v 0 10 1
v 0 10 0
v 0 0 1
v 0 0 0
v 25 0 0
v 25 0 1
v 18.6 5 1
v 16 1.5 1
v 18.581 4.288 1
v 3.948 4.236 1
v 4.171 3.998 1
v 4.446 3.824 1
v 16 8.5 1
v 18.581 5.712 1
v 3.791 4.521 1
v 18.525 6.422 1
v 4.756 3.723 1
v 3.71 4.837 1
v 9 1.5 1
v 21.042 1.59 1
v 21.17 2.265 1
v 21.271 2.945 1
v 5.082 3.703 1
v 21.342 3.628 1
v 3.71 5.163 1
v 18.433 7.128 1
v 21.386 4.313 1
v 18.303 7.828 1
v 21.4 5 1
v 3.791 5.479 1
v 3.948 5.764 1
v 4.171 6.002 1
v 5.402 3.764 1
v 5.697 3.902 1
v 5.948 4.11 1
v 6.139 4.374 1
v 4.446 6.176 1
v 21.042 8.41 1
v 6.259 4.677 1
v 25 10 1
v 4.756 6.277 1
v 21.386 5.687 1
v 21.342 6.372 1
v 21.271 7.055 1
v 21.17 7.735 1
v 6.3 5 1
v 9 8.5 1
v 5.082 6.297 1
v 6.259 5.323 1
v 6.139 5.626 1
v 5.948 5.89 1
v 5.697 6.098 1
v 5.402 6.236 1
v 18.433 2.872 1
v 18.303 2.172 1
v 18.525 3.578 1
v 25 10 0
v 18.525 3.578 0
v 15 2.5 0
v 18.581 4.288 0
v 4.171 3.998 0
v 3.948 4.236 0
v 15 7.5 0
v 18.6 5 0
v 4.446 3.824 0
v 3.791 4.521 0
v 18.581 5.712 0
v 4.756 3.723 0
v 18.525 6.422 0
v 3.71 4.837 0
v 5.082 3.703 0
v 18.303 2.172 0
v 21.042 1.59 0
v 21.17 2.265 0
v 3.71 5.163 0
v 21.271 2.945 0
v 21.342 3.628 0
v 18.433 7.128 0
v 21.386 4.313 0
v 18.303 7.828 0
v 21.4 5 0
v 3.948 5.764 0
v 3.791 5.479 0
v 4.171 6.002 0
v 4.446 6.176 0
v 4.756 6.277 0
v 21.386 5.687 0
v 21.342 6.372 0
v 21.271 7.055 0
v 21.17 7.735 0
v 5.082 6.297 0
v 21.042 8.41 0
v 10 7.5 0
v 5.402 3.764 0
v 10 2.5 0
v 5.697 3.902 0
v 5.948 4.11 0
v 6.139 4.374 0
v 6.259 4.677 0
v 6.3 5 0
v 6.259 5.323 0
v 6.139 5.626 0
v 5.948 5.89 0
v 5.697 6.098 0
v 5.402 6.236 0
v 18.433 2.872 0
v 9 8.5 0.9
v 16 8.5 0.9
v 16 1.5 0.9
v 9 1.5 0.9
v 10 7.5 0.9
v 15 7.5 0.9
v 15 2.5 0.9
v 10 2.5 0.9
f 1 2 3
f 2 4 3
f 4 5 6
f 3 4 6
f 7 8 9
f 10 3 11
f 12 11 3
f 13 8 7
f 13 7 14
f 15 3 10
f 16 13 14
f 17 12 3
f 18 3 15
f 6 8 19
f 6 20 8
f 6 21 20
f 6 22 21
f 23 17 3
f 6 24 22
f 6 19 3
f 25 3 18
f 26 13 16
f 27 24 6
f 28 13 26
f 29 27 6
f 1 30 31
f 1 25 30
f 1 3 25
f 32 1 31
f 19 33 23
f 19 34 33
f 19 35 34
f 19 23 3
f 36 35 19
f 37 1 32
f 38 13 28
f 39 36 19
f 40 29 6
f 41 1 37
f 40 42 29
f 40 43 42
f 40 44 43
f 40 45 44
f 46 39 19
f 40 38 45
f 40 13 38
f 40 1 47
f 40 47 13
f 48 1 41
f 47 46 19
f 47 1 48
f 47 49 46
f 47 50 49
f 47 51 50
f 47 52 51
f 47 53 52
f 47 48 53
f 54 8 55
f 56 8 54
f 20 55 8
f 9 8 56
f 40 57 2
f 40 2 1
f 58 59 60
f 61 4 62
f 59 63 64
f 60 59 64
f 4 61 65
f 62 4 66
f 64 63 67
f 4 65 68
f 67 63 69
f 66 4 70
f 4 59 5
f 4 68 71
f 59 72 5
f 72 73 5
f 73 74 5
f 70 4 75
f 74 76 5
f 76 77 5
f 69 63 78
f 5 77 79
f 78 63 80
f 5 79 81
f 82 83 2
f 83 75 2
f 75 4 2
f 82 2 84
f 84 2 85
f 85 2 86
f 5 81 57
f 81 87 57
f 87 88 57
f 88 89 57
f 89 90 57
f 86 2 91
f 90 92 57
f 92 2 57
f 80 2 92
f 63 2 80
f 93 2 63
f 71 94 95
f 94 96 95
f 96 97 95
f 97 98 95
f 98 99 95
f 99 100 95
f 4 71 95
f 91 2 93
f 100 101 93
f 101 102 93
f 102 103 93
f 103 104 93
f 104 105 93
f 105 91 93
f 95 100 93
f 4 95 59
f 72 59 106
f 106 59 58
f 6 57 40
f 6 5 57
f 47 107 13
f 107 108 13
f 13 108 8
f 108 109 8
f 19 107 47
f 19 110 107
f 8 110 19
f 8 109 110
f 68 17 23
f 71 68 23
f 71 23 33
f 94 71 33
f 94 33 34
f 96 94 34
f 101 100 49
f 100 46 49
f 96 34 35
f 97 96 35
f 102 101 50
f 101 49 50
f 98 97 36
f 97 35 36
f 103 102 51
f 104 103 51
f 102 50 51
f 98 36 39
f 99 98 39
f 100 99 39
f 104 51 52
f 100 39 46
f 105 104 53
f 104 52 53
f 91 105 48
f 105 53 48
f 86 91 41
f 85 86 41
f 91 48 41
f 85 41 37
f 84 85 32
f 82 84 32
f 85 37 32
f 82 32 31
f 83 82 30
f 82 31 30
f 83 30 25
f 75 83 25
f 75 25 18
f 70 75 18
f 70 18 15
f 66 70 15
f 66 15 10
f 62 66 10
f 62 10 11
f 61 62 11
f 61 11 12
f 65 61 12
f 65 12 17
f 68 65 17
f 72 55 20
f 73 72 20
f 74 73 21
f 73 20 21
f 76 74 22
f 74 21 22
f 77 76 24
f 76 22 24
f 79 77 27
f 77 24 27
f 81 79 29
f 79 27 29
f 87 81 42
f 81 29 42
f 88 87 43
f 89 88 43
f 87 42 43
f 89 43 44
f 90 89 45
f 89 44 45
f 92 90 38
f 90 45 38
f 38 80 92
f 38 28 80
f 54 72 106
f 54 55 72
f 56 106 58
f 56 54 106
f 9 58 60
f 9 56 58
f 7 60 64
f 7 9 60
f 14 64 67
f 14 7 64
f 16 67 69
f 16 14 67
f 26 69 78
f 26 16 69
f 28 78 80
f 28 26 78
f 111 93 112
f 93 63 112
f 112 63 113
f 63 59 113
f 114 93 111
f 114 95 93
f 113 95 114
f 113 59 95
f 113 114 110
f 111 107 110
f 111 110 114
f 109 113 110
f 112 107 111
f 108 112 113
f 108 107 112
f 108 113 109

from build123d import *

# Parameters (mm, degrees)
CYLINDER002_W               = 13.6
CYLINDER002_H               = 11
CYLINDER002_ANGLE           = 24
CYLINDER002_PLACEMENT_ANGLE = -12
CYLINDER001_W               = 16.4
CYLINDER001_H               = 10
CYLINDER001_ANGLE           = 24
CYLINDER001_PLACEMENT_ANGLE = -12
CYLINDER_R                  = 1.3
CYLINDER_DEPTH              = 10
BOX002_W                    = 7
BOX002_H                    = 7
BOX002_DEPTH                = 0.5
BOX001_W                    = 5
BOX001_H                    = 5
BOX001_DEPTH                = 2
BOX_W                       = 25
BOX_H                       = 10
BOX_DEPTH                   = 1


with BuildPart() as zylinder002:
    # Cylinder002 → Cylinder002 (revolve)
    with BuildSketch(Plane.XZ):
        with Locations((6.8, 5.5)):
            Rectangle(CYLINDER002_W, CYLINDER002_H)
    revolve(axis=Axis((0, 0, 0), (0, 0, 1)), revolution_arc=CYLINDER002_ANGLE)


with BuildPart() as zylinder002_1:
    # Cylinder002 placement: moved
    add(zylinder002.part.moved(Location((3, 5, 0))).rotate(Axis((3, 5, 0), (0, 0, 1)), CYLINDER002_PLACEMENT_ANGLE))


with BuildPart() as cut:
    # Cylinder001 → Cylinder001 (revolve)
    with BuildSketch(Plane.XZ):
        with Locations((8.2, 5)):
            Rectangle(CYLINDER001_W, CYLINDER001_H)
    revolve(axis=Axis((0, 0, 0), (0, 0, 1)), revolution_arc=CYLINDER001_ANGLE)


with BuildPart() as cut_1:
    # Cylinder001 placement: moved
    add(cut.part.moved(Location((3, 5, 0))).rotate(Axis((3, 5, 0), (0, 0, 1)), CYLINDER001_PLACEMENT_ANGLE))

    # Cut: cut Zylinder002
    add(zylinder002_1.part, mode=Mode.SUBTRACT)


with BuildPart() as cut_2:
    # Cut placement: moved
    add(cut_1.part.moved(Location((2, 0, 0))))


with BuildPart() as zylinder:
    # Cylinder → Cylinder (new body)
    with BuildSketch(Plane(origin=(5, 5, 0), x_dir=(1, 0, 0), z_dir=(0, 0, 1))):
        Circle(CYLINDER_R)
    extrude(amount=CYLINDER_DEPTH)


with BuildPart() as w_rfel002:
    # Box002 → Box002 (new body)
    with BuildSketch(Plane(origin=(9, 1.5, 0.9), x_dir=(1, 0, 0), z_dir=(0, 0, 1))):
        with Locations((3.5, 3.5)):
            Rectangle(BOX002_W, BOX002_H)
    extrude(amount=BOX002_DEPTH)


with BuildPart() as w_rfel001:
    # Box001 → Box001 (new body)
    with BuildSketch(Plane(origin=(10, 2.5, 0), x_dir=(1, 0, 0), z_dir=(0, 0, 1))):
        with Locations((2.5, 2.5)):
            Rectangle(BOX001_W, BOX001_H)
    extrude(amount=BOX001_DEPTH)


with BuildPart() as cut004:
    # Box → Box (new body)
    with BuildSketch(Plane.XY):
        with Locations((12.5, 5)):
            Rectangle(BOX_W, BOX_H)
    extrude(amount=BOX_DEPTH)

    # Cut001: cut Würfel001
    add(w_rfel001.part, mode=Mode.SUBTRACT)

    # Cut002: cut Würfel002
    add(w_rfel002.part, mode=Mode.SUBTRACT)

    # Cut003: cut Zylinder
    add(zylinder.part, mode=Mode.SUBTRACT)

    # Cut004: cut Cut
    add(cut_2.part, mode=Mode.SUBTRACT)


solid = cut004.part
